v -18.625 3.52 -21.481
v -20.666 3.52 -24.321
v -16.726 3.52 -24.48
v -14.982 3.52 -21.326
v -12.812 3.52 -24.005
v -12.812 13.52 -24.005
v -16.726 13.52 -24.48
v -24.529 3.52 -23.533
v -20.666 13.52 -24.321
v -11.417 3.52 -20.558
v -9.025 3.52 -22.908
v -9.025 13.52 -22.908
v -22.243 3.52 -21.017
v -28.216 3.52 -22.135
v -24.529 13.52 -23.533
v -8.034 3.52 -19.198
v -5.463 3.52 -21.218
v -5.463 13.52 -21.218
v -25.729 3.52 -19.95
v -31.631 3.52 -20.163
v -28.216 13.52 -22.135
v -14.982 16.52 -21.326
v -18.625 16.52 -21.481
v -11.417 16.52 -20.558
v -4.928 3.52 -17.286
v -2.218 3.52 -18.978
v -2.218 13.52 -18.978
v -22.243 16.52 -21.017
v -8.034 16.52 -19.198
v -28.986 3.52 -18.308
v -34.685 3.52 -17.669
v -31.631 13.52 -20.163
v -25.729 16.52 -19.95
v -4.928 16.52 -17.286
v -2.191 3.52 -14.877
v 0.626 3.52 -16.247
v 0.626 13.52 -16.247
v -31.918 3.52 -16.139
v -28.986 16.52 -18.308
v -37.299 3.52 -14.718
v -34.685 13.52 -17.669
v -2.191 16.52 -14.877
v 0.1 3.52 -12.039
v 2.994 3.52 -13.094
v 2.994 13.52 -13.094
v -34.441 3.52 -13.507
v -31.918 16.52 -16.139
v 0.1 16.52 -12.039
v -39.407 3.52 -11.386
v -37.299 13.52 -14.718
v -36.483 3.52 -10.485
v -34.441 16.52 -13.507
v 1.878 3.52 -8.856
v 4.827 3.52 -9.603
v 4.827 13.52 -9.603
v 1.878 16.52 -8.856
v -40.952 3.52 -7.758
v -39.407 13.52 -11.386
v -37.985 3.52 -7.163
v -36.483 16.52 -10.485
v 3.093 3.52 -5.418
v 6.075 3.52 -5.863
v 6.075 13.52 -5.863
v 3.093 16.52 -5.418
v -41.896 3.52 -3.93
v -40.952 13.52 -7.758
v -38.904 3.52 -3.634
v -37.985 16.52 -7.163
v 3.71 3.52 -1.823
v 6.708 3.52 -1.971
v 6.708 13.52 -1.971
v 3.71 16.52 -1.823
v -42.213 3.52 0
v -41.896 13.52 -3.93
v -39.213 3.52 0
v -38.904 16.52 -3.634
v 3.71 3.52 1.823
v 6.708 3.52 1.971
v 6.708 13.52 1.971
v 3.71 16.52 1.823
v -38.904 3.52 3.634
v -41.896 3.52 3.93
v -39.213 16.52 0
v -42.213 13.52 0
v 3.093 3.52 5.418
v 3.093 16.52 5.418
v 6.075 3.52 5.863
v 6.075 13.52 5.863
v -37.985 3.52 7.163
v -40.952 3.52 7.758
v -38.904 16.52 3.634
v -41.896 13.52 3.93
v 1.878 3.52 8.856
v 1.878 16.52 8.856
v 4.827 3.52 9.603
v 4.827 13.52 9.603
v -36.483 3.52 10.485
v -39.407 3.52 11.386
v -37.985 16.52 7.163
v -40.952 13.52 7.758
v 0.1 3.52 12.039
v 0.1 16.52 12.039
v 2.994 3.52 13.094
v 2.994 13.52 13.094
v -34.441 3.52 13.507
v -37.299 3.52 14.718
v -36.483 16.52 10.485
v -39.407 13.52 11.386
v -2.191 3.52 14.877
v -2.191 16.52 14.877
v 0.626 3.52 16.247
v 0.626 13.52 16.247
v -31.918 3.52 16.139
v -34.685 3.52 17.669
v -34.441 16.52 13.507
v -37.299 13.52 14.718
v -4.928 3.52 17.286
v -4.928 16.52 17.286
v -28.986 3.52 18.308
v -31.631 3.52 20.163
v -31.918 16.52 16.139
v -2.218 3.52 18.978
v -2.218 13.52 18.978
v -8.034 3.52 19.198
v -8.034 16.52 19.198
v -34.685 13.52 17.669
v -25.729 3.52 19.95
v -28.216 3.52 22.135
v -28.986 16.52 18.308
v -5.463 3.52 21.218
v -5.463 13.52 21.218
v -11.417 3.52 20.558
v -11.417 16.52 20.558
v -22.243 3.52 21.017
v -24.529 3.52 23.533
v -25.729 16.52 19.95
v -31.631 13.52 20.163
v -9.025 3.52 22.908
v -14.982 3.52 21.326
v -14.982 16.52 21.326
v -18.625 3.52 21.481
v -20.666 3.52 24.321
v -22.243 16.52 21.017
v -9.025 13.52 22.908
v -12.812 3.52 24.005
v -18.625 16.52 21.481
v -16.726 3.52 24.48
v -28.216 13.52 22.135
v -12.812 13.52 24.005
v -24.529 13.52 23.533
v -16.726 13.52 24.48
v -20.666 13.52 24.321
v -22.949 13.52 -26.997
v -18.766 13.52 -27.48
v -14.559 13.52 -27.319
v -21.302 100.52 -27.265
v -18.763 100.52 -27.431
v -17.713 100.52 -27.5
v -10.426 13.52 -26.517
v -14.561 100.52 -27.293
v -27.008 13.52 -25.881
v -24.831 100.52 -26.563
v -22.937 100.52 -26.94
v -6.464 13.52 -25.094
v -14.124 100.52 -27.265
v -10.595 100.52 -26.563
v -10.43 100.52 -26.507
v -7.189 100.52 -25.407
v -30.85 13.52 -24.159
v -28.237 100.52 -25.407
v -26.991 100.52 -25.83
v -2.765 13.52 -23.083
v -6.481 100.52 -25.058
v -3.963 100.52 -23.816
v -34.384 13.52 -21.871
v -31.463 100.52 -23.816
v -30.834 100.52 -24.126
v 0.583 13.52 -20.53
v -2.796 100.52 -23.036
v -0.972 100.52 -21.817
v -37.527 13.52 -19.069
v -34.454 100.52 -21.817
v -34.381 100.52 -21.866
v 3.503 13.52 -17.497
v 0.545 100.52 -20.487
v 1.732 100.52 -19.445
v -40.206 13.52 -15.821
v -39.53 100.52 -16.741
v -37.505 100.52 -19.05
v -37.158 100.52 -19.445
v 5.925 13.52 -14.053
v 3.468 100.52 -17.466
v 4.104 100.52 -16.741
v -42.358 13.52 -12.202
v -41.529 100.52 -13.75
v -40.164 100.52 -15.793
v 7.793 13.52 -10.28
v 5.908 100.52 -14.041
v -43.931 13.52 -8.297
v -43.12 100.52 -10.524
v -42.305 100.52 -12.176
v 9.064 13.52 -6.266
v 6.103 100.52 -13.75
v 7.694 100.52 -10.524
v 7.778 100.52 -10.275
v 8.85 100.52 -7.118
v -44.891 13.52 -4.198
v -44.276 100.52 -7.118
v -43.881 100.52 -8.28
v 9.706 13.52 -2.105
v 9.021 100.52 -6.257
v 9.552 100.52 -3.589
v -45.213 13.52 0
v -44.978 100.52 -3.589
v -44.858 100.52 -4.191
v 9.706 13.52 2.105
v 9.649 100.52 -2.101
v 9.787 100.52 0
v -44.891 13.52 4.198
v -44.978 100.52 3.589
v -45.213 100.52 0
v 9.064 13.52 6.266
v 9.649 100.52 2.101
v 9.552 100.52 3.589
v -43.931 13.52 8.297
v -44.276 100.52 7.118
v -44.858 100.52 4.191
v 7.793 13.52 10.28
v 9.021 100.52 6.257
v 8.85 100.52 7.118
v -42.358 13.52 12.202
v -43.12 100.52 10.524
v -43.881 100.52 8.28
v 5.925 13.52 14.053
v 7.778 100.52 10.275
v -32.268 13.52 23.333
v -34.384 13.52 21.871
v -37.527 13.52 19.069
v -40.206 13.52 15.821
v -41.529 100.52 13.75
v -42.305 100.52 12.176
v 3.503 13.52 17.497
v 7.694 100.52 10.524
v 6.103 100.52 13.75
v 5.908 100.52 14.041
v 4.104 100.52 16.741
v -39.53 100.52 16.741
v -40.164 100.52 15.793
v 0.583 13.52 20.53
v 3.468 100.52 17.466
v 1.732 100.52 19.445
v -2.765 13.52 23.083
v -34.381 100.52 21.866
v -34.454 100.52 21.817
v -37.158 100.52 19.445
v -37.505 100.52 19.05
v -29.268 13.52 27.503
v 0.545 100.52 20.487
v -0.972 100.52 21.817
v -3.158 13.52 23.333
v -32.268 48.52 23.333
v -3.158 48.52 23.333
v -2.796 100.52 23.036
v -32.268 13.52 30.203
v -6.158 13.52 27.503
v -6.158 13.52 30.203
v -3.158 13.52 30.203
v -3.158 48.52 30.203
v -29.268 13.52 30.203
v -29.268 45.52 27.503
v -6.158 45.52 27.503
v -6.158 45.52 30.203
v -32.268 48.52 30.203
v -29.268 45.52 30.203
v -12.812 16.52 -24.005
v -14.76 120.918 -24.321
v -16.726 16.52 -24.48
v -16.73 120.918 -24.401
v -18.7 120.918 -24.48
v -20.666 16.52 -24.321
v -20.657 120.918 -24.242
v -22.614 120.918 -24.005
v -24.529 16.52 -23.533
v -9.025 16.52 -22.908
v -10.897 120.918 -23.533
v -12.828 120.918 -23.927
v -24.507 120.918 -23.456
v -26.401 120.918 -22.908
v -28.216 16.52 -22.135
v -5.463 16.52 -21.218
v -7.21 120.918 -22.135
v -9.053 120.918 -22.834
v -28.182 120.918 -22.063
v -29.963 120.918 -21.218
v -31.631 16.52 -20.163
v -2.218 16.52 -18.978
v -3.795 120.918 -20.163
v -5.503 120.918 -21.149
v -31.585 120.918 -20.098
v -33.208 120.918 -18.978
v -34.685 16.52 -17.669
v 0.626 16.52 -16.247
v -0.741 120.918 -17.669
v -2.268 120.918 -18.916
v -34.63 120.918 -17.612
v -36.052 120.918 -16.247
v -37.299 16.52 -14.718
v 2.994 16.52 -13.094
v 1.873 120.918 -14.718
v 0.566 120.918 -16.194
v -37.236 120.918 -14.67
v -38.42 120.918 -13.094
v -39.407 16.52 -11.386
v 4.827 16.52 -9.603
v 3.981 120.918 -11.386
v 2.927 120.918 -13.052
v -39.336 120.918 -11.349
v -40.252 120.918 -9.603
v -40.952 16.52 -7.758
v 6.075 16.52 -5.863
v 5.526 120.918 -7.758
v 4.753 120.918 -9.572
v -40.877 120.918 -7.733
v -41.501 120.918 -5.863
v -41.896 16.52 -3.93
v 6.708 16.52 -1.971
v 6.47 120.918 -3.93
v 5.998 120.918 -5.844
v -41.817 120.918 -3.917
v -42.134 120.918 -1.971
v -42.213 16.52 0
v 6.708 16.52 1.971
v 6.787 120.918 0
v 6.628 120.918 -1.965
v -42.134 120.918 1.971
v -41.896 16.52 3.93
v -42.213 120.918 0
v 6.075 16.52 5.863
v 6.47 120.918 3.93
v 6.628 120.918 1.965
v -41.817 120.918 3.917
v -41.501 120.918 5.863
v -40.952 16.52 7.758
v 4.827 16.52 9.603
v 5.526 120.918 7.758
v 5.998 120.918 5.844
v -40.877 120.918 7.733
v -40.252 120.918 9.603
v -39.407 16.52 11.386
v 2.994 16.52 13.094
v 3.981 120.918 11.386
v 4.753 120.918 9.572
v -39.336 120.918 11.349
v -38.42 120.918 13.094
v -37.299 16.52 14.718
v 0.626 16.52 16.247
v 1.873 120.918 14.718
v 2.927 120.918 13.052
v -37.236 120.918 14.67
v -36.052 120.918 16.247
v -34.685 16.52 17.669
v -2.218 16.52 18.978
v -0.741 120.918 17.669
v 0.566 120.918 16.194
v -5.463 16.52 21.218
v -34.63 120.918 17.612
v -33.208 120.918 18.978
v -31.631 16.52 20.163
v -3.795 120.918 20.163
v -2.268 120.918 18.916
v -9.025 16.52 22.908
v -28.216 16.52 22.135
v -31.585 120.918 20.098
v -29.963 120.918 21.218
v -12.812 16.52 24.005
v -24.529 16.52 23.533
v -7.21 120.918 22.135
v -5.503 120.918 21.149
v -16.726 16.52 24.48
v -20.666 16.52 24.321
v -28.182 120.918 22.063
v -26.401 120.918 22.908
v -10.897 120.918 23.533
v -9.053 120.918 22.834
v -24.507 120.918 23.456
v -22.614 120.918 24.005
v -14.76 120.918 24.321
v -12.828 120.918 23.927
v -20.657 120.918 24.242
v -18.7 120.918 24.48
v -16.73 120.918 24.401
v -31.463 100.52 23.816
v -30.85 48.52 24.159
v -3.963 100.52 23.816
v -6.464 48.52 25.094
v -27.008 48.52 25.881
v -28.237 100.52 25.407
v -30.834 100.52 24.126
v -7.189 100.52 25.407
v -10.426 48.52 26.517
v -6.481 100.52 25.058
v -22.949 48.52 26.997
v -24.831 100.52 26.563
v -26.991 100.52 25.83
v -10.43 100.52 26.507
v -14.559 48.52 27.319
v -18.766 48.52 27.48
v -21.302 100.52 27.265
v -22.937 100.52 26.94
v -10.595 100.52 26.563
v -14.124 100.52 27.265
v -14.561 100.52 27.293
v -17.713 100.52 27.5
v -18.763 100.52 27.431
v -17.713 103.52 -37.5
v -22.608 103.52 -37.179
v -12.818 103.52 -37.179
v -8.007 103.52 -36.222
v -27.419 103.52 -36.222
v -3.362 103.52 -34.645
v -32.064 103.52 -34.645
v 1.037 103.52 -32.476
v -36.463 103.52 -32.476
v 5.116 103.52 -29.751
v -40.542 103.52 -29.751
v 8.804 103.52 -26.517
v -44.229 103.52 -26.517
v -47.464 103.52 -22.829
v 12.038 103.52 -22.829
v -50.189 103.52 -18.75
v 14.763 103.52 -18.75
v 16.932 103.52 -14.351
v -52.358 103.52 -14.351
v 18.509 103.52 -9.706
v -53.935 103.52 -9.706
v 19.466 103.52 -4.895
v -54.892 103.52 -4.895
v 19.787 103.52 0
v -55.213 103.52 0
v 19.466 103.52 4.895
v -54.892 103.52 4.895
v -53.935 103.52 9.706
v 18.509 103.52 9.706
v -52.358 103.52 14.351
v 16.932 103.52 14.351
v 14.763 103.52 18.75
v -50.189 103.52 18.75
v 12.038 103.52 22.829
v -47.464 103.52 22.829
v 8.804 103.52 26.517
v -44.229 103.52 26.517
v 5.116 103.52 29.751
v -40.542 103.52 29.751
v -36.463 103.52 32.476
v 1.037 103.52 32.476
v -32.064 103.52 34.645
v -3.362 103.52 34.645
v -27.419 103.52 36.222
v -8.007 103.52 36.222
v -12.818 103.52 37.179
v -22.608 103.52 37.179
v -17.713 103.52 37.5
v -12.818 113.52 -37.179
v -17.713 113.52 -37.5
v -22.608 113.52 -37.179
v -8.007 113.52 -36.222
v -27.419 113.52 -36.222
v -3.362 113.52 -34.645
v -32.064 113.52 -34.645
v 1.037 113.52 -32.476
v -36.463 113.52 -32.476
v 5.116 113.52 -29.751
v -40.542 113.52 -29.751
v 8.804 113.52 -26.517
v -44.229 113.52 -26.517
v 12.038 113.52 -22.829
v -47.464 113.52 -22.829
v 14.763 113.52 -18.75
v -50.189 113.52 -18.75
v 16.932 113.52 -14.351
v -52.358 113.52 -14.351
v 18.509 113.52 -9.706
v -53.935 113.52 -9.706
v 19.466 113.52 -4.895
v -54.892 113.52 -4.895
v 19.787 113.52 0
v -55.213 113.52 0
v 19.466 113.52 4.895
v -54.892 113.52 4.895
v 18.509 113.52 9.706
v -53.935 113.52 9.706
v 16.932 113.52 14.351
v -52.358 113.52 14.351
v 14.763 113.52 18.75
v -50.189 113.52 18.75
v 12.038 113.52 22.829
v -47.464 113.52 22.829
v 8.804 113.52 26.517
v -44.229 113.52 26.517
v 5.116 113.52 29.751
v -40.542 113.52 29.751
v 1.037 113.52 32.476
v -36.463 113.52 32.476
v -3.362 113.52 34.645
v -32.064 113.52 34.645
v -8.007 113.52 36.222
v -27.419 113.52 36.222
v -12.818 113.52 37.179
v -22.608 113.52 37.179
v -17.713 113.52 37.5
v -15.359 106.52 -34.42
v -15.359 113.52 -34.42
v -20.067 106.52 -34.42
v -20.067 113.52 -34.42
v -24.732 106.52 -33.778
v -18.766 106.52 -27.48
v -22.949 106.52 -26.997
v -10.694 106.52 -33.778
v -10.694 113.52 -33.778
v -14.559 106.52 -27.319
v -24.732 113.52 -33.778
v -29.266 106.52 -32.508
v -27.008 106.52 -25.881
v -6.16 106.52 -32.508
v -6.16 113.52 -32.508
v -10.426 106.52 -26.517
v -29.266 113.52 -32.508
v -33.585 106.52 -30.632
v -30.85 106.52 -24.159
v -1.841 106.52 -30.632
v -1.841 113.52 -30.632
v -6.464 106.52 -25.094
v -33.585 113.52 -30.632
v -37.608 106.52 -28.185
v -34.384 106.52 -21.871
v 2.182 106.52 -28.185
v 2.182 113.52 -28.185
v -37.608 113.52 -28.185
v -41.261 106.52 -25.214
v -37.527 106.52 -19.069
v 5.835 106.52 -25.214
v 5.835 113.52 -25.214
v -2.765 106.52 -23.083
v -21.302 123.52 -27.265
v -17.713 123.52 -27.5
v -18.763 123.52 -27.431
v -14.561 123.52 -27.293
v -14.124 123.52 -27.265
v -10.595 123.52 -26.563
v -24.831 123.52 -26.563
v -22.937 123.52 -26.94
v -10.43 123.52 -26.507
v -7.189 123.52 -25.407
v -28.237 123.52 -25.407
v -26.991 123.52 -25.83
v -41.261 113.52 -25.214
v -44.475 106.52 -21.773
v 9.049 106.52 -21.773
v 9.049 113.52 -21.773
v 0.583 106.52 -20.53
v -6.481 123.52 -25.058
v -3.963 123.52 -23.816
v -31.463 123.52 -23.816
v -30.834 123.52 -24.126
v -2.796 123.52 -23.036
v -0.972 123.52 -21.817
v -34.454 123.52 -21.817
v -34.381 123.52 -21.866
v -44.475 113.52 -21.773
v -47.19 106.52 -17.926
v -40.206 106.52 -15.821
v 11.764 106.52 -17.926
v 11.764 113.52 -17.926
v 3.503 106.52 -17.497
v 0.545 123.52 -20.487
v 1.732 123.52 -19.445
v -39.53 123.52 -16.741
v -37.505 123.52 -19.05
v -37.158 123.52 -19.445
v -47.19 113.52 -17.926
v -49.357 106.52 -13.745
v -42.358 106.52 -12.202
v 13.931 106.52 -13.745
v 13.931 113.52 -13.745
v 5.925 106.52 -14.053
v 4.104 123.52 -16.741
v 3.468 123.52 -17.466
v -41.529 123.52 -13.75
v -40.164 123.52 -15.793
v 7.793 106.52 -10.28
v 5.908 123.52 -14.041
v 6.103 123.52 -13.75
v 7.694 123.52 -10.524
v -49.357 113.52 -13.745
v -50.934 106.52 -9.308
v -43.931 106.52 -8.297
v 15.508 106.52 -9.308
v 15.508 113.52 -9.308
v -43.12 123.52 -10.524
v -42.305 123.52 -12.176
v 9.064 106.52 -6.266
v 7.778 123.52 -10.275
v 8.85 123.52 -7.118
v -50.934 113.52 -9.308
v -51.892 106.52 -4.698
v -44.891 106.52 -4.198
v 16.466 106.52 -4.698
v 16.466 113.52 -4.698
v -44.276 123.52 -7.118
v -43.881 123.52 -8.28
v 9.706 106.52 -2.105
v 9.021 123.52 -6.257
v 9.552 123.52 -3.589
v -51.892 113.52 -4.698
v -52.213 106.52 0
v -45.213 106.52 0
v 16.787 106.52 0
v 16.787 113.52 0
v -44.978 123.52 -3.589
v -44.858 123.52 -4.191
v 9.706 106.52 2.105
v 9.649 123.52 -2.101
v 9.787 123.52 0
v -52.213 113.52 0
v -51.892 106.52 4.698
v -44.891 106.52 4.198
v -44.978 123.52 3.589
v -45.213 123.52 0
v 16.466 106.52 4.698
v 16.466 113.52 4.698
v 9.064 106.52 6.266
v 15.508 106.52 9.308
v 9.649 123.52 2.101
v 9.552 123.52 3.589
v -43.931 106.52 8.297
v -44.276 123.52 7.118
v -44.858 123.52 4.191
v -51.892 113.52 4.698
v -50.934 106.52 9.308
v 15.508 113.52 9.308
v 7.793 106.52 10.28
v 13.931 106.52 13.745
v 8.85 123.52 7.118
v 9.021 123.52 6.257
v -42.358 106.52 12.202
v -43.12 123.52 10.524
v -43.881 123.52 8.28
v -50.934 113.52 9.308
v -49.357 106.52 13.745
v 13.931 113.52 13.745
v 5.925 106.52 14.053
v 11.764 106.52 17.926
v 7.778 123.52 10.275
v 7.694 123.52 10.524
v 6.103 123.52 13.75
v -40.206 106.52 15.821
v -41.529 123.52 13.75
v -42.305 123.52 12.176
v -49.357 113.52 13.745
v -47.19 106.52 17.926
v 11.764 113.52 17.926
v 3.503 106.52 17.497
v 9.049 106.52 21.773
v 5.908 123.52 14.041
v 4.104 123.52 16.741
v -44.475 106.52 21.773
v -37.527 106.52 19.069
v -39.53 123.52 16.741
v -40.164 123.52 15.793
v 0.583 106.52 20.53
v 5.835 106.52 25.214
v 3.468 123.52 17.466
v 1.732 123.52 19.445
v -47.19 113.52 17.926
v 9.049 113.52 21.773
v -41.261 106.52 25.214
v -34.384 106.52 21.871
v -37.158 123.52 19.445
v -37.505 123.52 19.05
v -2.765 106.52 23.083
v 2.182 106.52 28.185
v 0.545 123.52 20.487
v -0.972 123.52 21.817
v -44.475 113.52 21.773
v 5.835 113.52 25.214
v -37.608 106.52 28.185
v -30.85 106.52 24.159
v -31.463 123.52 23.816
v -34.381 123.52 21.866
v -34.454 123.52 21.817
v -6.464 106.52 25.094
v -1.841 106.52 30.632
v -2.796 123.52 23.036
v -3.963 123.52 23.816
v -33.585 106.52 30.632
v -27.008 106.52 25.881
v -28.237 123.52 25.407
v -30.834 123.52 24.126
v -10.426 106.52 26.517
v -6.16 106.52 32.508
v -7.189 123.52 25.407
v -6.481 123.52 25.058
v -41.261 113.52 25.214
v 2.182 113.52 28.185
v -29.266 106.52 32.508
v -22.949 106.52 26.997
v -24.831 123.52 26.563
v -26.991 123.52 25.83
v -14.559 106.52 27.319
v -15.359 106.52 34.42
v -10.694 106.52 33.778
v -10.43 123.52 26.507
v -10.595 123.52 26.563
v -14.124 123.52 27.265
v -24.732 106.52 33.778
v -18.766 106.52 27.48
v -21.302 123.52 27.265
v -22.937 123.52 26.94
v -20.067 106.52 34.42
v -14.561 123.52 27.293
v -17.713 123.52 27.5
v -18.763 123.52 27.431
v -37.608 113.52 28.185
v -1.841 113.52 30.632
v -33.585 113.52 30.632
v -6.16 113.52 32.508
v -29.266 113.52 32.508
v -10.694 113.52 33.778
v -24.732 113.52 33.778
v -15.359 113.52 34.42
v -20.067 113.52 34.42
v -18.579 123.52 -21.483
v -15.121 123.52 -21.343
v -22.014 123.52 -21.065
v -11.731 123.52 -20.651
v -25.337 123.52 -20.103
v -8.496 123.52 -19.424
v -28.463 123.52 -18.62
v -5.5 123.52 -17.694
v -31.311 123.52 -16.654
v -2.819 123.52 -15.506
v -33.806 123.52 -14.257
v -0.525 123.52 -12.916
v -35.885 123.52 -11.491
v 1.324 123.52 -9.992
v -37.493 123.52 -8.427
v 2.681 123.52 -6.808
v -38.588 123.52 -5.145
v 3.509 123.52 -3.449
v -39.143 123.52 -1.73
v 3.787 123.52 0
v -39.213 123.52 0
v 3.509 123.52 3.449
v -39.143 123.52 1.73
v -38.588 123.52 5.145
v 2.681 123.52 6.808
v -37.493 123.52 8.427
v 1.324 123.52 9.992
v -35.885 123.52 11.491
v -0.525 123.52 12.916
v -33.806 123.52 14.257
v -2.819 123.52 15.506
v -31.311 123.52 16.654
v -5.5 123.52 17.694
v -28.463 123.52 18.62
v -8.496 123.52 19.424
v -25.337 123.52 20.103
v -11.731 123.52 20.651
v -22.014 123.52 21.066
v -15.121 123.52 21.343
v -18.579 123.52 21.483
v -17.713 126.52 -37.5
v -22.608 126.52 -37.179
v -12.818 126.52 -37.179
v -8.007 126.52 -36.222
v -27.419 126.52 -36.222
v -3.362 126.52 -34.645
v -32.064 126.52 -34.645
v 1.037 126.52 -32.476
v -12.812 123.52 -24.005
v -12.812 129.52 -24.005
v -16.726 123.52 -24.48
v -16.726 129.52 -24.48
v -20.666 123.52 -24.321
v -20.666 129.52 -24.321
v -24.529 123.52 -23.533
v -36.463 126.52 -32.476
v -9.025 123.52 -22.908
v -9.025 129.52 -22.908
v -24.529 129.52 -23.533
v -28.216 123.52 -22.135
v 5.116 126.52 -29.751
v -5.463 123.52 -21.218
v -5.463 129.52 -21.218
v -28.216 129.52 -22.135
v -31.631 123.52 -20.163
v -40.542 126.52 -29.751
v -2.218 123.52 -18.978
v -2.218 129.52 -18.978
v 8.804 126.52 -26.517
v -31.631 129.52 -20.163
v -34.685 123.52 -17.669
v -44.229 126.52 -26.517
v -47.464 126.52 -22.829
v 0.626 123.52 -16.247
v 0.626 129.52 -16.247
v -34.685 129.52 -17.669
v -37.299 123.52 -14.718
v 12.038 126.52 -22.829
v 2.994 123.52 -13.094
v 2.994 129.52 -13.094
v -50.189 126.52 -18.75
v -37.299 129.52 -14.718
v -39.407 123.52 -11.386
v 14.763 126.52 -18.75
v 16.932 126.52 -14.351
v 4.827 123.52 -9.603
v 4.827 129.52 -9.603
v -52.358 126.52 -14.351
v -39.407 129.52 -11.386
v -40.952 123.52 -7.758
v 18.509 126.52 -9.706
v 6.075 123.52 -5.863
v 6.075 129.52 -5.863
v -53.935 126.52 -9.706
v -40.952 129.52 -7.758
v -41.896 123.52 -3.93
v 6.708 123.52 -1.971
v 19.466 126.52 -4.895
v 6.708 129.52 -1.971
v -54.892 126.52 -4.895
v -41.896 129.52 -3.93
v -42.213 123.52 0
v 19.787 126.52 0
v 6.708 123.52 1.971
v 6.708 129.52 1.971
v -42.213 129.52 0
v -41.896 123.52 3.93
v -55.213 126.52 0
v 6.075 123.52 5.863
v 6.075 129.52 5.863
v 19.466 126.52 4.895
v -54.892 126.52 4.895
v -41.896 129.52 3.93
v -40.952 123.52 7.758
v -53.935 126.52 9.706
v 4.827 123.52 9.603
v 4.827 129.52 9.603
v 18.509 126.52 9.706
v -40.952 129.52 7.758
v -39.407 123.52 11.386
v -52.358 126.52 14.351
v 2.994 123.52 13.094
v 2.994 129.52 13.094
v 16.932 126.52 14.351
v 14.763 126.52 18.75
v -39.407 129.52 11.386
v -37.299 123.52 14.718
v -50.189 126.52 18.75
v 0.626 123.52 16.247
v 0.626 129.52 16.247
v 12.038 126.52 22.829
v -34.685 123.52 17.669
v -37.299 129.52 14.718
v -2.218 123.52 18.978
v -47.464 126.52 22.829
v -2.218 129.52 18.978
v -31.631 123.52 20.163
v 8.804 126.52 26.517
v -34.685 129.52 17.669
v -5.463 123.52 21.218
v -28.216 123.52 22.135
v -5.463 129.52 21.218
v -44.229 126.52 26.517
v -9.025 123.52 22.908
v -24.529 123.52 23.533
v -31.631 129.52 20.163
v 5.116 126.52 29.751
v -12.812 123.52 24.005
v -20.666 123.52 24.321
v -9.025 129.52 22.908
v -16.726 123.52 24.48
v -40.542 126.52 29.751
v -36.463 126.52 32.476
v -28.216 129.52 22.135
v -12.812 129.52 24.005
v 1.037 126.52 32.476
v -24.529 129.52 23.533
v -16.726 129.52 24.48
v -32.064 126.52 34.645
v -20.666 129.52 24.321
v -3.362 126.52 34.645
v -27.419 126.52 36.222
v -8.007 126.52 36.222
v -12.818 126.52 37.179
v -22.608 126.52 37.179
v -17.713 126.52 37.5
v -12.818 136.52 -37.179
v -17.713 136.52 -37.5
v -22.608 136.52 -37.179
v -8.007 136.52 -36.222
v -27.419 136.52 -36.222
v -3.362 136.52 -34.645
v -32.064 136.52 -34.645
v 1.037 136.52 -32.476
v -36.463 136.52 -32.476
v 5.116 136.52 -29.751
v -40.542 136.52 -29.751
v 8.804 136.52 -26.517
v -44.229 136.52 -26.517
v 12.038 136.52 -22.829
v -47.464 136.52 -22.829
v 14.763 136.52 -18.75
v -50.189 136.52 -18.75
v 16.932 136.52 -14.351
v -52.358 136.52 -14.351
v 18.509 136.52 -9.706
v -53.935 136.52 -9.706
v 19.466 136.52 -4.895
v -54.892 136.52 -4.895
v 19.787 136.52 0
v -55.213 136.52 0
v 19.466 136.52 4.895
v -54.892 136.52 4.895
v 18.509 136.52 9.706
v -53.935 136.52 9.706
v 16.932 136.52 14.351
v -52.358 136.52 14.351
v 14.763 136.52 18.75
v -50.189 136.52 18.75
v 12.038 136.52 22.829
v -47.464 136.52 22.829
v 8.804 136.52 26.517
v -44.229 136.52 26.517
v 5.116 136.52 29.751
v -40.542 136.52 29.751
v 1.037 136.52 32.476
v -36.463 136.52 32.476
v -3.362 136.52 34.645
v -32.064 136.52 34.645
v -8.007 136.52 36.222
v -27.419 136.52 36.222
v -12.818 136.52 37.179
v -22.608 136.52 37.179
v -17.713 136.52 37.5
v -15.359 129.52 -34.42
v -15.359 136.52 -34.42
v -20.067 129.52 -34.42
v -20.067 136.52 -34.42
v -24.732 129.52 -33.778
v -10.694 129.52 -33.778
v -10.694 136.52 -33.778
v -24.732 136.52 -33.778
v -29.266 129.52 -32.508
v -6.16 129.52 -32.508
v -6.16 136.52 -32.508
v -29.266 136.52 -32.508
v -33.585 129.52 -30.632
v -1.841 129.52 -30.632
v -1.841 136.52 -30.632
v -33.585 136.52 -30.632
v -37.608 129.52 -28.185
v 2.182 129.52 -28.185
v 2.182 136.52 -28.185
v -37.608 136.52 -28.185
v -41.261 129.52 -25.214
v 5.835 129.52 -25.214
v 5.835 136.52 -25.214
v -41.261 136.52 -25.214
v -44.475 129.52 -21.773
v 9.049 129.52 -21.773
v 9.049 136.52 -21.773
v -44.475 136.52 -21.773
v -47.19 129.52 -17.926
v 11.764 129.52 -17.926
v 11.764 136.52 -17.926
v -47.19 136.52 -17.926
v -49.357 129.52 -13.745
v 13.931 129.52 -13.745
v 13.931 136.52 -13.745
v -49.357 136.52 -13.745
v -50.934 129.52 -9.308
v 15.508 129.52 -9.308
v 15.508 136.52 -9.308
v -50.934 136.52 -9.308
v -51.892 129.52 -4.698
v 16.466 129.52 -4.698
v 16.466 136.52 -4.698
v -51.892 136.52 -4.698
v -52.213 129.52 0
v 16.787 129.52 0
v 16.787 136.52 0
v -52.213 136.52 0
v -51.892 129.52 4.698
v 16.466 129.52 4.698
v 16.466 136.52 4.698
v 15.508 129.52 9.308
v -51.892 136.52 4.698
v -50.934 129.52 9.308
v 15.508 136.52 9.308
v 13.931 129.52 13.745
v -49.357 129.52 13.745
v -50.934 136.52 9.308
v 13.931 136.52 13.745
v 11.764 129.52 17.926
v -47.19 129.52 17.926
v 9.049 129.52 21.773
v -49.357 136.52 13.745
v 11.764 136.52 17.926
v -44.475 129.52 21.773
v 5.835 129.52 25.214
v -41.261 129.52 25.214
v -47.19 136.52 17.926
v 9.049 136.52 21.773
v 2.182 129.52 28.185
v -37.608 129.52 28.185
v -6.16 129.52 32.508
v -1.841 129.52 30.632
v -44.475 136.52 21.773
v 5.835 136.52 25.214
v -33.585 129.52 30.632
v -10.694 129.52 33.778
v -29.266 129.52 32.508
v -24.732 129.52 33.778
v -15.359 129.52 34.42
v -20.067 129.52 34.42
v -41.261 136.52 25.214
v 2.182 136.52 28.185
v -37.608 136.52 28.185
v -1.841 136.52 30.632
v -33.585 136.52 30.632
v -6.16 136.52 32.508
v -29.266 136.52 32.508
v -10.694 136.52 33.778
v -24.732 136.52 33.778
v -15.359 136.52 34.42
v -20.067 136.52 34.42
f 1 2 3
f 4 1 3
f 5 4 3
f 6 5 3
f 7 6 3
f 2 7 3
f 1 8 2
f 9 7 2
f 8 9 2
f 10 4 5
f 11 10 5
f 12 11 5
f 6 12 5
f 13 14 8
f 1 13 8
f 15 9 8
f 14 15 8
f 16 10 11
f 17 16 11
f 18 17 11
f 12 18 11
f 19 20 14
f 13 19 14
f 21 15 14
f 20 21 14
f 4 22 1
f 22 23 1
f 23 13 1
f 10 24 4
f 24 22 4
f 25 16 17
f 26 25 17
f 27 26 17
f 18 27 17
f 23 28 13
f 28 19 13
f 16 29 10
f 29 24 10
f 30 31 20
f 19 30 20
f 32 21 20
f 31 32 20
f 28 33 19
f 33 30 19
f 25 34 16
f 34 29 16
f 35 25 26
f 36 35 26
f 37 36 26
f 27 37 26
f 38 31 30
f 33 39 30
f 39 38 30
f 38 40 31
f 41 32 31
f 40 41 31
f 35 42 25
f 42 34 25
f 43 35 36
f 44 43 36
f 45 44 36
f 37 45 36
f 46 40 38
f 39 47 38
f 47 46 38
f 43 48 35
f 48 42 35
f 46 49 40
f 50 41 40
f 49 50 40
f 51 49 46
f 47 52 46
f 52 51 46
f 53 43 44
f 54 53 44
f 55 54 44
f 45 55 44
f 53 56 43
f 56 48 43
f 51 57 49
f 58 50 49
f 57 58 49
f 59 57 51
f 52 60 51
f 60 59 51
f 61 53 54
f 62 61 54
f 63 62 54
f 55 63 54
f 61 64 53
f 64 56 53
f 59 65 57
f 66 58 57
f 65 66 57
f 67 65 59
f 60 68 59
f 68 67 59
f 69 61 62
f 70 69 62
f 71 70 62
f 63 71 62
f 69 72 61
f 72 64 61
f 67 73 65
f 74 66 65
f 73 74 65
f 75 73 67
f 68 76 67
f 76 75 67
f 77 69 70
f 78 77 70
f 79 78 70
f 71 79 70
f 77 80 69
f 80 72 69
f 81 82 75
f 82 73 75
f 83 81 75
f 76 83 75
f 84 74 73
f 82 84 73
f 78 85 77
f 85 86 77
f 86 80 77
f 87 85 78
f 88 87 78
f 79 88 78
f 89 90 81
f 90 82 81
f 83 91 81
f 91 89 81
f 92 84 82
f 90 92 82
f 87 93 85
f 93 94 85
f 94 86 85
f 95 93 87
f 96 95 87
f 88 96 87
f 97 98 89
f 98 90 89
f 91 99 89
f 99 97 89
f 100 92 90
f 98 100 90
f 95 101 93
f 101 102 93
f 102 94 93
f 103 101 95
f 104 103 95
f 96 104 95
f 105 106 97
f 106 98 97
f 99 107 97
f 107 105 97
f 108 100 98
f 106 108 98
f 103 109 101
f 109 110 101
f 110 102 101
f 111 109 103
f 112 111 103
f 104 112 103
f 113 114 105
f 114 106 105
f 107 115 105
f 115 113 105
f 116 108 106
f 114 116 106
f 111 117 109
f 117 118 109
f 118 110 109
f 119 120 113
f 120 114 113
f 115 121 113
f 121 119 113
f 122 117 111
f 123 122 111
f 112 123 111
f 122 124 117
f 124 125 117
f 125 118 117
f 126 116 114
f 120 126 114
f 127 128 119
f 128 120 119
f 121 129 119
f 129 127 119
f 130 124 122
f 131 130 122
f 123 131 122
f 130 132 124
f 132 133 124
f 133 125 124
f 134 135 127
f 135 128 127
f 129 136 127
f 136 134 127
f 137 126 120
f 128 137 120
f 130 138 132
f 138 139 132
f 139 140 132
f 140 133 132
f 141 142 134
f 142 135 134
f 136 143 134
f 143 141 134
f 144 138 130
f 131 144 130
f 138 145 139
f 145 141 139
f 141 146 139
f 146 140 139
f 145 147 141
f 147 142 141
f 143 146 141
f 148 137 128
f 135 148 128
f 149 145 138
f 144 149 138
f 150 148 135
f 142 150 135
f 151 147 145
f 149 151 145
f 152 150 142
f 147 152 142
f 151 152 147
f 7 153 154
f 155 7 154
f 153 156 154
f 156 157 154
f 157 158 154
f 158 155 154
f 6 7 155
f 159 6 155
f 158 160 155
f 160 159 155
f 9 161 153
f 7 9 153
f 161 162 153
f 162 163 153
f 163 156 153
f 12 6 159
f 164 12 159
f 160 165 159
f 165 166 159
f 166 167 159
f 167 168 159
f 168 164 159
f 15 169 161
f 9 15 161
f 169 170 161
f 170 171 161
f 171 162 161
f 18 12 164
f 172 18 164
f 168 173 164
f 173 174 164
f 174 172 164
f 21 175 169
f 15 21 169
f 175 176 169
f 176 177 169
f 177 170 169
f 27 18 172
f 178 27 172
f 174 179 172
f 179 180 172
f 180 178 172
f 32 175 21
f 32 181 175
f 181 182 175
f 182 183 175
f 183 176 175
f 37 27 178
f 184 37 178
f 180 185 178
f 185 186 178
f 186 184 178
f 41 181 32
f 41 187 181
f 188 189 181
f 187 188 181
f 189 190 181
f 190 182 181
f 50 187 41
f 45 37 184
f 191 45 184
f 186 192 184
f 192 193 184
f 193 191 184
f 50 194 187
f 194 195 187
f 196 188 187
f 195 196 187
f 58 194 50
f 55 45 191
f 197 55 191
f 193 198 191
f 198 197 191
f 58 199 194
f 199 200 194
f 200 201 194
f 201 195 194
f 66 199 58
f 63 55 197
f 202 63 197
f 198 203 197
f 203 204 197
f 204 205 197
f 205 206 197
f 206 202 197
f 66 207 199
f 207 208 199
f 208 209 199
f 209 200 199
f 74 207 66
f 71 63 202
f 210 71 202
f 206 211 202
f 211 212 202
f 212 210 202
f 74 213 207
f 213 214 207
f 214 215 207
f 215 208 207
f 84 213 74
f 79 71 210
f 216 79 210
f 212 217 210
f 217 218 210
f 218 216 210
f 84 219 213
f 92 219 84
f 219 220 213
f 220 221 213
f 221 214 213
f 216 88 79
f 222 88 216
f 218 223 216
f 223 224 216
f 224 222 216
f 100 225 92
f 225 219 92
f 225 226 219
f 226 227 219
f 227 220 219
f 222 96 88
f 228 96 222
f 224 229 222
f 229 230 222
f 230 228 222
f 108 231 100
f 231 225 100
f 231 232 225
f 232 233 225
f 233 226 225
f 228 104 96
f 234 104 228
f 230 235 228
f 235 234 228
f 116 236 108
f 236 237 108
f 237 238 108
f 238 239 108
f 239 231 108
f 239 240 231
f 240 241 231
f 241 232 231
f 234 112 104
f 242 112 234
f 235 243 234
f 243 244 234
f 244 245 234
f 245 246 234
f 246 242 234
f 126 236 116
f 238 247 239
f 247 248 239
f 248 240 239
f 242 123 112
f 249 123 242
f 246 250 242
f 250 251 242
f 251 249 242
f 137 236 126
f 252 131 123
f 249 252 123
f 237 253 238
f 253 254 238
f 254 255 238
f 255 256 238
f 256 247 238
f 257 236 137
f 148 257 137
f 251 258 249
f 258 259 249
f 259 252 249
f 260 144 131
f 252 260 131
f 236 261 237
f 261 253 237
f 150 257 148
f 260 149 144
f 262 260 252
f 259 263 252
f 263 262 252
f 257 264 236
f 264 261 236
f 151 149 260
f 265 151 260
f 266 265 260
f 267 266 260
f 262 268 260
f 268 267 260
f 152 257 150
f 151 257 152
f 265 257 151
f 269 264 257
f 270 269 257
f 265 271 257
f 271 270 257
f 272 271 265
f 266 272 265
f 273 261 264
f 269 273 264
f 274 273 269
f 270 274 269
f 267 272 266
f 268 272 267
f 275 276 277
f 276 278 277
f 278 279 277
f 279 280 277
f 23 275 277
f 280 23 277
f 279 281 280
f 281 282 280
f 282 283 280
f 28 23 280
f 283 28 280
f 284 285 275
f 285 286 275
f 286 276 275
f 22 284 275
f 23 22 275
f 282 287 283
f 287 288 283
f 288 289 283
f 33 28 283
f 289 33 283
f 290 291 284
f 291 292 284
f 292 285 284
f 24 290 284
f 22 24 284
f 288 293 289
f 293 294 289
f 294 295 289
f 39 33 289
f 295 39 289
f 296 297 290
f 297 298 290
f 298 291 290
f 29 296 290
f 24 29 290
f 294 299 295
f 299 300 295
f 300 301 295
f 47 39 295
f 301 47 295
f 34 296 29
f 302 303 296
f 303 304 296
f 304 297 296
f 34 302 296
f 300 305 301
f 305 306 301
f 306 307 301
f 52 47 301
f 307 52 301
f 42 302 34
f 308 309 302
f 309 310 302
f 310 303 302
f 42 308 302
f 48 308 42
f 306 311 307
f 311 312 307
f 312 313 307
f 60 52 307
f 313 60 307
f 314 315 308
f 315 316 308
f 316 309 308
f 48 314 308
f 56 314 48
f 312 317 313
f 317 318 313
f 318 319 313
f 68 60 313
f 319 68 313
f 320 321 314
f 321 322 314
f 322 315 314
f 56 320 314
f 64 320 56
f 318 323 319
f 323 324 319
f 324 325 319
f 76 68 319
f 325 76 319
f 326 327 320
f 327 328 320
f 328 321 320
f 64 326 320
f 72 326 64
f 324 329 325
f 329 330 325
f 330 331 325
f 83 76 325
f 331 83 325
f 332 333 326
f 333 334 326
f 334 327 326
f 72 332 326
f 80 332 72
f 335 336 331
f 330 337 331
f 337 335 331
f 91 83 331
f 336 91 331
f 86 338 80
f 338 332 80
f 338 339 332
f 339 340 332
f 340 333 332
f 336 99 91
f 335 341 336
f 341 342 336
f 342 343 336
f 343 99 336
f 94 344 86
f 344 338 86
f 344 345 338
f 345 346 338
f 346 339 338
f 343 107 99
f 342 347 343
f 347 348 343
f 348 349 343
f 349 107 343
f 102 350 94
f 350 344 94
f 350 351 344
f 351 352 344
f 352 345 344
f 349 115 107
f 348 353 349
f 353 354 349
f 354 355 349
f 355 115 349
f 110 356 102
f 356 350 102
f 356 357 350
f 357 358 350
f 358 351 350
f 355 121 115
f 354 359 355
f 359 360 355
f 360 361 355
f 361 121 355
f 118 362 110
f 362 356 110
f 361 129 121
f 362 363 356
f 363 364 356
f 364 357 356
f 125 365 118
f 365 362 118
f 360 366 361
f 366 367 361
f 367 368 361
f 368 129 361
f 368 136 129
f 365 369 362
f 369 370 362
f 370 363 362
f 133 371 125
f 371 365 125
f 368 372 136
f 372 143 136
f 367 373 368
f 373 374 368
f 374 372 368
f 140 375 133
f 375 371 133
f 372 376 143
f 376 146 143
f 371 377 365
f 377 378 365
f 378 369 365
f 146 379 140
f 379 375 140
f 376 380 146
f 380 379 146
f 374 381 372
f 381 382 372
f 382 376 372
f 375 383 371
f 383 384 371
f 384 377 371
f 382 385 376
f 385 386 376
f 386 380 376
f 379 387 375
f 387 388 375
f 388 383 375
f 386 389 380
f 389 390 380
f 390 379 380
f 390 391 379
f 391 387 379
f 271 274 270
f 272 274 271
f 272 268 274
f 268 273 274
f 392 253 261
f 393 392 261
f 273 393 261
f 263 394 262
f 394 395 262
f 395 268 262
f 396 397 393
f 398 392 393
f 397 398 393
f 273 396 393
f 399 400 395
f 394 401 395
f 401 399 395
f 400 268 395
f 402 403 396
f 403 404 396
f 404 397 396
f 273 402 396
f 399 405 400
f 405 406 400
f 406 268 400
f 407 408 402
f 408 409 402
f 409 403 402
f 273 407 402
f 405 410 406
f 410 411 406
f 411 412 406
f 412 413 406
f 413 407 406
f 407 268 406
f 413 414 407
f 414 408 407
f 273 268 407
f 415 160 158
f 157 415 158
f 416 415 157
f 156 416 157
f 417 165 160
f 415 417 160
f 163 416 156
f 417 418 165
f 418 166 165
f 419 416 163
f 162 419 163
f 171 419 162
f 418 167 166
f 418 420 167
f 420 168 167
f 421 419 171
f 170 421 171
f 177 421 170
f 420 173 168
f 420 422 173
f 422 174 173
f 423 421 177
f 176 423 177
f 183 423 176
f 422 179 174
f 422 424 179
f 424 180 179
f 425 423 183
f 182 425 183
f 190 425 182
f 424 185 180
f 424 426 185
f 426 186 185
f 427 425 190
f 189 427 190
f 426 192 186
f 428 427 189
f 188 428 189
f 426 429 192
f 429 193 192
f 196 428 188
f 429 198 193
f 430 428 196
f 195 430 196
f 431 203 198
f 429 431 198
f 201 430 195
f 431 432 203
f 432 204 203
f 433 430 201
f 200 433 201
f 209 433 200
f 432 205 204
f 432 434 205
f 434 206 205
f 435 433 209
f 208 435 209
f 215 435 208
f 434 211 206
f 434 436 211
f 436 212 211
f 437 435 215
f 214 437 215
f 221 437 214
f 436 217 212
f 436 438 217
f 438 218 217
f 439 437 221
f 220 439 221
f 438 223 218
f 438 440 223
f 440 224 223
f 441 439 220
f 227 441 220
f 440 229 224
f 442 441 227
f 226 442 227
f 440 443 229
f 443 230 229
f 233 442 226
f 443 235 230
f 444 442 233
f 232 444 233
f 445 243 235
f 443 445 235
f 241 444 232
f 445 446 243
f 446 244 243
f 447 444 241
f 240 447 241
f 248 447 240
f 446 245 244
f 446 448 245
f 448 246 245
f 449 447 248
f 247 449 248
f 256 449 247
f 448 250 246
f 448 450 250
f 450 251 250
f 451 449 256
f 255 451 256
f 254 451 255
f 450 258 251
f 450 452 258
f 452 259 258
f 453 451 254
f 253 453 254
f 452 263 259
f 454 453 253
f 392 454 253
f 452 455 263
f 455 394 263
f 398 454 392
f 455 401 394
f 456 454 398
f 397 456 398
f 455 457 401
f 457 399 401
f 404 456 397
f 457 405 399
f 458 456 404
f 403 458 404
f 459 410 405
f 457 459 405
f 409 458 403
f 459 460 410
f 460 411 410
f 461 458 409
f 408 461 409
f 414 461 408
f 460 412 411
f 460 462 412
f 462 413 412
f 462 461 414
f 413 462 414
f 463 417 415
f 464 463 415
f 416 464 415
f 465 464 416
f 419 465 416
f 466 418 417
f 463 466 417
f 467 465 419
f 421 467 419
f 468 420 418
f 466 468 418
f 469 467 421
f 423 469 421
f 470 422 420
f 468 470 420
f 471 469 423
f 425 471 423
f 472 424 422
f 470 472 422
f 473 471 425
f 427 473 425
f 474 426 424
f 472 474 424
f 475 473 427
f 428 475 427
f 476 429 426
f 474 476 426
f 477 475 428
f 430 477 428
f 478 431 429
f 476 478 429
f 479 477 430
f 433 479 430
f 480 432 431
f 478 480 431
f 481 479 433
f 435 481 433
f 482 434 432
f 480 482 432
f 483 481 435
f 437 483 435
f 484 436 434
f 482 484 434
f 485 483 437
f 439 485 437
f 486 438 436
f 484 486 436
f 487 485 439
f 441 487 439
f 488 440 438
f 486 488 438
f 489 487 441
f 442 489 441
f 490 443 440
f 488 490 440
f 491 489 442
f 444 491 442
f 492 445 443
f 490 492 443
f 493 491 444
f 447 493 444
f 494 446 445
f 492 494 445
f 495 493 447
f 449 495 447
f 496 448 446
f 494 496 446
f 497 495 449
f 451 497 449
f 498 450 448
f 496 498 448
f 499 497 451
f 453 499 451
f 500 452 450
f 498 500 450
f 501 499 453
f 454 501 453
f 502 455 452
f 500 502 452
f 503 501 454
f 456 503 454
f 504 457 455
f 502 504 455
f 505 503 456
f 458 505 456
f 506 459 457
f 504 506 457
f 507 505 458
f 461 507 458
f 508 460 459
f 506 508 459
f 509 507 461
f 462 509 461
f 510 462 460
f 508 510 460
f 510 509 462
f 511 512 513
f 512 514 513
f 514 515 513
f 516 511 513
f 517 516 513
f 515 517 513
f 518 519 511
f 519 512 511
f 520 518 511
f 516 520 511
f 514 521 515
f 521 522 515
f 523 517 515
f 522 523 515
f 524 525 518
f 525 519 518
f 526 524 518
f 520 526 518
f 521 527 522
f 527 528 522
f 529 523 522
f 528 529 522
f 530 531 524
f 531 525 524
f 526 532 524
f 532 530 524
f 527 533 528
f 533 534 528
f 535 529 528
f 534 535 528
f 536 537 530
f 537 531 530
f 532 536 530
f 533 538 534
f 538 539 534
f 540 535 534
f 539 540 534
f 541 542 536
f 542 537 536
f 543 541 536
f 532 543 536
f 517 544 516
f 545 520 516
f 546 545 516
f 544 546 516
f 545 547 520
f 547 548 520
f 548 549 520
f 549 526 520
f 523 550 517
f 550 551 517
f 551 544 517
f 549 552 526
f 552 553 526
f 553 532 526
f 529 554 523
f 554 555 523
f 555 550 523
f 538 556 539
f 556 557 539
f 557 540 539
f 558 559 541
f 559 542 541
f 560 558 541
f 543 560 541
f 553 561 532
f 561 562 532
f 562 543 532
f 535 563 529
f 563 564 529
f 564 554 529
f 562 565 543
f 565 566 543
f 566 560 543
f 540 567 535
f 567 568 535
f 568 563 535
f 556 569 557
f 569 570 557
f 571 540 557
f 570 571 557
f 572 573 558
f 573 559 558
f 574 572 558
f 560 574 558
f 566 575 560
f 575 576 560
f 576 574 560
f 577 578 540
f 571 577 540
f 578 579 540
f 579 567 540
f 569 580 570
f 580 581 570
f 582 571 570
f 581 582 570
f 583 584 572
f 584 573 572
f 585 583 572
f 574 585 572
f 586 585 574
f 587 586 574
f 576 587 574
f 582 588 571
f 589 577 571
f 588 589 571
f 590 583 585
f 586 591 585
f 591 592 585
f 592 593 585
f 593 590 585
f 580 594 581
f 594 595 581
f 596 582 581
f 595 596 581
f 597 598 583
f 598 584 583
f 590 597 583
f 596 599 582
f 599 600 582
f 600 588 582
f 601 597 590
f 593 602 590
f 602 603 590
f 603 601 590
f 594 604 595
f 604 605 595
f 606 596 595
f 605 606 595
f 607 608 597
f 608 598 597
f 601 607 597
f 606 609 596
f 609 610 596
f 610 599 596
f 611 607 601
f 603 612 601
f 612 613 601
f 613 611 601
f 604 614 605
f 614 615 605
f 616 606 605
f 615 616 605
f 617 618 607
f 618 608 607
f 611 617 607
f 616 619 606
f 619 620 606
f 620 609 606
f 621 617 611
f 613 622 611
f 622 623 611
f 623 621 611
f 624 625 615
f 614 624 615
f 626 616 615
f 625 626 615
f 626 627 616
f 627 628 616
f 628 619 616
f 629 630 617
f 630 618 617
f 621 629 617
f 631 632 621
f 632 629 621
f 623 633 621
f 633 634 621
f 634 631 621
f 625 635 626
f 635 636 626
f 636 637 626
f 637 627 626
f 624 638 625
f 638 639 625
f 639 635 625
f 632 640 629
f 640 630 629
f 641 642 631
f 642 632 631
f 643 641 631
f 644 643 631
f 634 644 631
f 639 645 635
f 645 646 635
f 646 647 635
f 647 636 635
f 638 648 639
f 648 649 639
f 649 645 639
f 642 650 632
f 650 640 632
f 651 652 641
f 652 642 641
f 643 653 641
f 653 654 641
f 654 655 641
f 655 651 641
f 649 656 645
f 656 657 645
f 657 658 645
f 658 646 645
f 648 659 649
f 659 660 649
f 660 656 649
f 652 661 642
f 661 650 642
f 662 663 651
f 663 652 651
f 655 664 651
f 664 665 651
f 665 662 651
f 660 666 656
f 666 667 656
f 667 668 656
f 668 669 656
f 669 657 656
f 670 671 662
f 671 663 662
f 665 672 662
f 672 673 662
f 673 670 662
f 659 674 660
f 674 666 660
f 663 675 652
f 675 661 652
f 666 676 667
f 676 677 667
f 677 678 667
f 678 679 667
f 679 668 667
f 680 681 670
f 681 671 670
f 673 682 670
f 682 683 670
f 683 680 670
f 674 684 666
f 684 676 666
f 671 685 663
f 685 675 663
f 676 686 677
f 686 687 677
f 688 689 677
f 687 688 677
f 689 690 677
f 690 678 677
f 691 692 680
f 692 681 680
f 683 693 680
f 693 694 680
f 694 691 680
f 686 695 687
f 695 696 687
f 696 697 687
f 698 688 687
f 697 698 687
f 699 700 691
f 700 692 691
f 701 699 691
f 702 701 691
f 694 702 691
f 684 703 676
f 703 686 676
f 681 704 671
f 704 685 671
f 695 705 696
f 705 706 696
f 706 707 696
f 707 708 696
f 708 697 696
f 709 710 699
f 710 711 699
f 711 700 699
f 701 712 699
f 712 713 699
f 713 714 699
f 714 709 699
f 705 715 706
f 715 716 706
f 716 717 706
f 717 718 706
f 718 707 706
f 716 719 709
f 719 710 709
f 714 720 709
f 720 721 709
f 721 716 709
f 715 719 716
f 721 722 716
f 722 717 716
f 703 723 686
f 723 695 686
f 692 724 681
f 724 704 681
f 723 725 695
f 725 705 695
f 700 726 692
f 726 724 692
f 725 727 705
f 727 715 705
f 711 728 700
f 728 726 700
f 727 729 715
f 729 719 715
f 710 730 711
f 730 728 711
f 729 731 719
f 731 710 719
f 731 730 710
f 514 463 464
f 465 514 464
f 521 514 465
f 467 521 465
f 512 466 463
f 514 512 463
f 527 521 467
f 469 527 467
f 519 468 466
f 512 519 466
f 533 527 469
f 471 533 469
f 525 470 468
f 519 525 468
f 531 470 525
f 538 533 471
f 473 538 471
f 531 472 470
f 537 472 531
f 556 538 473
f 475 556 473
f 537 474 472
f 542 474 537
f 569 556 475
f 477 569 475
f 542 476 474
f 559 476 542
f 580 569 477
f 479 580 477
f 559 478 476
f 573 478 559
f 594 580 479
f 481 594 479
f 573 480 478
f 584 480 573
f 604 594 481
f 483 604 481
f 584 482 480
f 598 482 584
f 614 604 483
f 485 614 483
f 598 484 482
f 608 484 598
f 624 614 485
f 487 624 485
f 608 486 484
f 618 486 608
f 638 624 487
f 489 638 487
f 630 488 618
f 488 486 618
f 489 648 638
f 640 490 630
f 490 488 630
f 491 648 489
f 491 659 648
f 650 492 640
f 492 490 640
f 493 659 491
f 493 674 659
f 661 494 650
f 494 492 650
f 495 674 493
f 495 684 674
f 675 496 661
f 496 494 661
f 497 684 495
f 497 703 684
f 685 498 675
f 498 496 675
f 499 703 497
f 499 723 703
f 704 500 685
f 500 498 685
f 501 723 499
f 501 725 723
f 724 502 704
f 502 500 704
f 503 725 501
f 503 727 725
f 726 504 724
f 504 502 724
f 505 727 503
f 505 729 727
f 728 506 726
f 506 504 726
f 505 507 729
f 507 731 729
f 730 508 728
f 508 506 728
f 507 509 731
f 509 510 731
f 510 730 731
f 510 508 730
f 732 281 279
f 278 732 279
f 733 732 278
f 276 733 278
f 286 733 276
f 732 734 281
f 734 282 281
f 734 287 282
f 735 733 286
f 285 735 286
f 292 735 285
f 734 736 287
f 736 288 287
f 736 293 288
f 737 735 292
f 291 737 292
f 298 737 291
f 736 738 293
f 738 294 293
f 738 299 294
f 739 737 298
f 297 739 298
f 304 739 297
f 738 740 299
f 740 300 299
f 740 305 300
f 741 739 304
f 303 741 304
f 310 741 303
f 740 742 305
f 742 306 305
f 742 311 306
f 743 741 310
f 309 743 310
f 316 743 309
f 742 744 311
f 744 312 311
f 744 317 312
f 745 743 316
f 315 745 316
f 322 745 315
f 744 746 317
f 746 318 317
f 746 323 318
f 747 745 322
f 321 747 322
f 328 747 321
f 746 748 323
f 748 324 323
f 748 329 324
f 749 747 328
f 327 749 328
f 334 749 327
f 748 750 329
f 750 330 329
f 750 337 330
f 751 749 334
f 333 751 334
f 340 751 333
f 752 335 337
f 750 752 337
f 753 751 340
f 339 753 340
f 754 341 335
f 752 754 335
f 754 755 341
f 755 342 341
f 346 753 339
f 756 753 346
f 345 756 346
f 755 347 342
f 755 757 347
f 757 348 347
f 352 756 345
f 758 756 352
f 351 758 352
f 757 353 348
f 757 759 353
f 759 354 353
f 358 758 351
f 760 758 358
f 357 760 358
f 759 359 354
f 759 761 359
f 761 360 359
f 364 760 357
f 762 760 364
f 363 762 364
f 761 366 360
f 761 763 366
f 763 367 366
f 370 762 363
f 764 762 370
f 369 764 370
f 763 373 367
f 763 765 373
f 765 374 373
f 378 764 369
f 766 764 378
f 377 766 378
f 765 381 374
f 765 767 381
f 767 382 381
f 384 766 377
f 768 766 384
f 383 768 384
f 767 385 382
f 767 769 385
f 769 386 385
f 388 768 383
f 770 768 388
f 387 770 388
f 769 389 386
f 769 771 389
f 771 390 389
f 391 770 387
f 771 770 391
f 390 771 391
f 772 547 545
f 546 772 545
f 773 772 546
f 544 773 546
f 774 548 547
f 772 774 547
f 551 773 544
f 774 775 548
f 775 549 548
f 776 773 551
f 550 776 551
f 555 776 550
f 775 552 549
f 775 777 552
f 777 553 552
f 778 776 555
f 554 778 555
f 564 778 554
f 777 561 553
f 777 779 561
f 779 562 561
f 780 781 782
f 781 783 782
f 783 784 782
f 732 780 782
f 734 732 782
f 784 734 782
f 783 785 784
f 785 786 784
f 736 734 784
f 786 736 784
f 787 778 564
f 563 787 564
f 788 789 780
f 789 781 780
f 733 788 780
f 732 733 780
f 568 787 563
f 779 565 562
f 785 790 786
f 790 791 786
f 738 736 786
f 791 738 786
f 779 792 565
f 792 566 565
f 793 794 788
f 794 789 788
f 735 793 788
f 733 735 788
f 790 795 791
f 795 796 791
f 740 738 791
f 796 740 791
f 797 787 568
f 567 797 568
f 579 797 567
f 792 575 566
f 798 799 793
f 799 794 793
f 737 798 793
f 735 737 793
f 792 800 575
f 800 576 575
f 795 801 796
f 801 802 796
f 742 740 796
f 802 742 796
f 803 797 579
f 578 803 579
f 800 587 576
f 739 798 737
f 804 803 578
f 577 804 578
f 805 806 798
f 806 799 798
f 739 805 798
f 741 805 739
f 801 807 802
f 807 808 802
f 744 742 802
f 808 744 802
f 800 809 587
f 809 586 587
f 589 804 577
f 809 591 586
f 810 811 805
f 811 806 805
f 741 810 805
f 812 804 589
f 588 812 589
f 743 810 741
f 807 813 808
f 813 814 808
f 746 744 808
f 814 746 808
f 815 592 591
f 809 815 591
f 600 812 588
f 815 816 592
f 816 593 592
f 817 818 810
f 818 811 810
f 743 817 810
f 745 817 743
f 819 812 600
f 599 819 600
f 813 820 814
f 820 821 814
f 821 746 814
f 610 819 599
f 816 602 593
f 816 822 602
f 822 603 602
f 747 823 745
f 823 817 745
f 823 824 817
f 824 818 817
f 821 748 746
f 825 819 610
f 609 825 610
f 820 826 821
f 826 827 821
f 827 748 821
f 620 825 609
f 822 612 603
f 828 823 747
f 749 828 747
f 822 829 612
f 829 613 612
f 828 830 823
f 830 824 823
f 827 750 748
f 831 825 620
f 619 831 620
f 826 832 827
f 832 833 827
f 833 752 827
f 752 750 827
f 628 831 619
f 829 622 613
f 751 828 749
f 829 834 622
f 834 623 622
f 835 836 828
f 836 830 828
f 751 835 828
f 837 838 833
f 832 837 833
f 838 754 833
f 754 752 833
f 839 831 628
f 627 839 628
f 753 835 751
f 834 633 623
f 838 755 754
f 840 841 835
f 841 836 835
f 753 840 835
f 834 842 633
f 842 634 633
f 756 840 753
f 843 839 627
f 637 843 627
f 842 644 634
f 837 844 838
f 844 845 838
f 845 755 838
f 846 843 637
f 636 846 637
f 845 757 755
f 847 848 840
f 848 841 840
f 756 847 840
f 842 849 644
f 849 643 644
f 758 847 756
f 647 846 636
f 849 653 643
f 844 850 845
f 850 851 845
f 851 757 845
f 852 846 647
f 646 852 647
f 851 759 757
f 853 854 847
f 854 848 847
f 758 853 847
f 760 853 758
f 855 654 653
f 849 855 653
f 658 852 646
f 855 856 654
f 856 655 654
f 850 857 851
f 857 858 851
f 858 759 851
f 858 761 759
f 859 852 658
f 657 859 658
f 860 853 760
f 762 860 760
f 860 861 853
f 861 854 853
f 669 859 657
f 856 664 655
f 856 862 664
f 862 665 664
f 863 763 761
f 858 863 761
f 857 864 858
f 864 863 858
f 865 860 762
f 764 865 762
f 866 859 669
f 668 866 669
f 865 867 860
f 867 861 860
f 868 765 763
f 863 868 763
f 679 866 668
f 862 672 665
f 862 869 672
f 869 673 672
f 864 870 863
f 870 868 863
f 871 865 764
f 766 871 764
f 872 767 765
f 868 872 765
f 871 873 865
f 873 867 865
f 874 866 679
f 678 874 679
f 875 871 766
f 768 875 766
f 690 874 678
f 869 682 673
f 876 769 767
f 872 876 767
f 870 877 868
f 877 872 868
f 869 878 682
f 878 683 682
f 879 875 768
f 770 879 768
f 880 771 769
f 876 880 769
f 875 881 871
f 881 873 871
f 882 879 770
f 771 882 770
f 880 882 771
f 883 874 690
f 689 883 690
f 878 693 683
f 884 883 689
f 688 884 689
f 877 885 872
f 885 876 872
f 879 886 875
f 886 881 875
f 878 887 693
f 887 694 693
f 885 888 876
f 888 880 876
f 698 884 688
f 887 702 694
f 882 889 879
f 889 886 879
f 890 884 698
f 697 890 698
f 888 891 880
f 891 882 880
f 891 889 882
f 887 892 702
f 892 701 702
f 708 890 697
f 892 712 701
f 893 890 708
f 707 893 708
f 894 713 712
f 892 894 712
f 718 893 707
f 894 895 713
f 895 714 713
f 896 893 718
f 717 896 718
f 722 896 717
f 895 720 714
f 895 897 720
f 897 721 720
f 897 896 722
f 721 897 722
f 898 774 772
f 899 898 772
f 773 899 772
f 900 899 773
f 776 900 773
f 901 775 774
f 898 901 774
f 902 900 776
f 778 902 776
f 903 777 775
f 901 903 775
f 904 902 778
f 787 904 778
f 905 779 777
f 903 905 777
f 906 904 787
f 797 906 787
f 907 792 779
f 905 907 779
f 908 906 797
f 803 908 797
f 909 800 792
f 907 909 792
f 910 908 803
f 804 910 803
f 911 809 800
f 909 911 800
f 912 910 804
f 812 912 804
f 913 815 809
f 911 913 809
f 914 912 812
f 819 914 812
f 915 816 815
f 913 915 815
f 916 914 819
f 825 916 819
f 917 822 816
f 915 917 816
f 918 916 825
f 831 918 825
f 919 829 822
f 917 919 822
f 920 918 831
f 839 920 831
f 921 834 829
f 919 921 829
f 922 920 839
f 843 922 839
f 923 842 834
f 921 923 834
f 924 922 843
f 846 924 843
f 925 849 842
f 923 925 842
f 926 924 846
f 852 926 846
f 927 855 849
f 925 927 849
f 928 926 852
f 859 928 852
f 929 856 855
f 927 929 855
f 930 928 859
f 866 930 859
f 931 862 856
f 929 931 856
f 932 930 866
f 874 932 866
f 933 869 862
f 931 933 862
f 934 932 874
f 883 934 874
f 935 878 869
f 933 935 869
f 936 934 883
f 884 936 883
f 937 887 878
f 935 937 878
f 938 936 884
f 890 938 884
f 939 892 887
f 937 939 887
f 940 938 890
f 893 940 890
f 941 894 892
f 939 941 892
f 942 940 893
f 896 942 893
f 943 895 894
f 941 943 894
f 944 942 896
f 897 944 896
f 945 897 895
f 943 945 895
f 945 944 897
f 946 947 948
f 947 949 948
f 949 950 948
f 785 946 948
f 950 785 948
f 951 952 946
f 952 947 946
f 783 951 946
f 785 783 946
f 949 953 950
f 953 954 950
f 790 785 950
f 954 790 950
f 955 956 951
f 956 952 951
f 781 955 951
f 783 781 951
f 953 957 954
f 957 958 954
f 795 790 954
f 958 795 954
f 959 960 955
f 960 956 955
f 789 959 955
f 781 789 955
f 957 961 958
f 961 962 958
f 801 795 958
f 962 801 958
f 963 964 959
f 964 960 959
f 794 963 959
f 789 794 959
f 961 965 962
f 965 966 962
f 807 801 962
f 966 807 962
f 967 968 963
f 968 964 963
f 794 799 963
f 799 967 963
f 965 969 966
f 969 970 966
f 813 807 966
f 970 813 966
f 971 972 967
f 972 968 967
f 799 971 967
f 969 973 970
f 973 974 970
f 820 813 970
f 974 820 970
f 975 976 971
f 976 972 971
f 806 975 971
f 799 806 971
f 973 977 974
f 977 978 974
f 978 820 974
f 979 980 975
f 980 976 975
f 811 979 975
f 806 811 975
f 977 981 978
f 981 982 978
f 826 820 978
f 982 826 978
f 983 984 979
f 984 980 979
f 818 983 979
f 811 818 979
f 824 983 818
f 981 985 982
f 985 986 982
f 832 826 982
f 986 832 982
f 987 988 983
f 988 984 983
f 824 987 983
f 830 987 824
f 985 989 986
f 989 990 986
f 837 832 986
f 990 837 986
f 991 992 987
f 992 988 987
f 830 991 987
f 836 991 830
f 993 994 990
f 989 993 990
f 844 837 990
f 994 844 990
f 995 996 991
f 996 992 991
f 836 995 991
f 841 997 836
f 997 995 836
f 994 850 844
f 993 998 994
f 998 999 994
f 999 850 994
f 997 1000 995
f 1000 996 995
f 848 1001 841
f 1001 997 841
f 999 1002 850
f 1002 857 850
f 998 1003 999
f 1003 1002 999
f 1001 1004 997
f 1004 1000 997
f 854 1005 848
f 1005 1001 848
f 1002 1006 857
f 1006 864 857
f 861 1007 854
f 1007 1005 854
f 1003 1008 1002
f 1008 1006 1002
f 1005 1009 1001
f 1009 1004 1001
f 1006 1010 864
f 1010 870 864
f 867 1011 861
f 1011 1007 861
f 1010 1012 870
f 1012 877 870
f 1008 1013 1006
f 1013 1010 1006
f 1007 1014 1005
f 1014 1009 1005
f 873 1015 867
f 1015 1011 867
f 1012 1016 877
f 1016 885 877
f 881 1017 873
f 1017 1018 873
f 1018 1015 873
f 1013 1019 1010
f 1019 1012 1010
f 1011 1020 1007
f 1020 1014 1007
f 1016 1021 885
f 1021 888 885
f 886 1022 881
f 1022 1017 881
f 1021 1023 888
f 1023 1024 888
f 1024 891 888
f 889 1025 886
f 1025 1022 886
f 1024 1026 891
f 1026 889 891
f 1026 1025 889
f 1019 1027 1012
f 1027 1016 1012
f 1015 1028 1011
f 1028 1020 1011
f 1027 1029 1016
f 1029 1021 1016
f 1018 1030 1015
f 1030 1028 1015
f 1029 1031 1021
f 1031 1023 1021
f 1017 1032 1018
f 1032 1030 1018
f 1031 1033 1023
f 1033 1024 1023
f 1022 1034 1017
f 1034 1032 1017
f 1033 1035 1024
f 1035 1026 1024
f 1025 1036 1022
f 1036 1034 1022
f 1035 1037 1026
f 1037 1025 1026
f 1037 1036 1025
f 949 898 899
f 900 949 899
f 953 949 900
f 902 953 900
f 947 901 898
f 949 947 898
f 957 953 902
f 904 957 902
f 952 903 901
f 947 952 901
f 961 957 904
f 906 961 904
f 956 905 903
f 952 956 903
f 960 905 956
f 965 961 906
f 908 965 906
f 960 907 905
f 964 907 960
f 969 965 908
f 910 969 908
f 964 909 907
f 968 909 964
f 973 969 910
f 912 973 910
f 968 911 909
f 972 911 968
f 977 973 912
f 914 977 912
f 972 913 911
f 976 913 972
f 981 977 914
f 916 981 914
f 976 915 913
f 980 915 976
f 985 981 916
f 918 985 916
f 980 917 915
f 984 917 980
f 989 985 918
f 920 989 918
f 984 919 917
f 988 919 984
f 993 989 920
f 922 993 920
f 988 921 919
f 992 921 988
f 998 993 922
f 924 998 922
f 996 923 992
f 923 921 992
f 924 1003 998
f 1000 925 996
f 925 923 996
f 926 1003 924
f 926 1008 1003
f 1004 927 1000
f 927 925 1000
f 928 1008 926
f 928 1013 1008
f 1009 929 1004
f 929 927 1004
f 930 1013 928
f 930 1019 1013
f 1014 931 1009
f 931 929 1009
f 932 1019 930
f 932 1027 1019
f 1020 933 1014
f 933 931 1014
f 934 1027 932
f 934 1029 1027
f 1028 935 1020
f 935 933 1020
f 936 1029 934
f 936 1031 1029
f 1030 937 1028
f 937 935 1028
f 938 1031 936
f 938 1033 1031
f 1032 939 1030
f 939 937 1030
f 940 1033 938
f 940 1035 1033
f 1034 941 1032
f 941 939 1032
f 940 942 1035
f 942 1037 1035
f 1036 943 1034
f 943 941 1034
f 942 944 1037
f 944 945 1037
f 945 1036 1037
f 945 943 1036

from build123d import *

# Parameters (mm, degrees)
SALIENTE_EXTRUIR1_DEPTH = 35
CROQUIS3_W              = 23.109686168
CROQUIS3_H              = 32
CORTAR_EXTRUIR1_DEPTH   = 2.7


with BuildPart() as part:
    # Croquis1 → Revolución1 (revolve)
    with BuildSketch(Plane.XY):
        Polygon((-39.212995514, 3.519897437), (-39.212995514, 16.519897437), (-42.212995514, 16.519897437), (-42.212995514, 120.917625562), (-39.212995514, 123.519897437), (-42.212995514, 123.519897437), (-42.212995514, 129.519897437), (-52.212995514, 129.519897437), (-52.212995514, 136.519897437), (-55.212995514, 136.519897437), (-55.212995514, 126.519897437), (-45.212995514, 123.519897437), (-45.212995514, 106.519897437), (-52.212995514, 106.519897437), (-52.212995514, 113.519897437), (-55.212995514, 113.519897437), (-55.212995514, 103.519897437), (-45.212995514, 100.519897437), (-45.212995514, 13.519897437), (-42.212995514, 13.519897437), (-42.212995514, 3.519897437), align=None)
    revolve(axis=Axis((-17.712995514, 104.262295082, 0), (0, -1, 0)))

    # Croquis2 → Saliente-Extruir1 (add)
    with BuildSketch(Plane.XZ.offset(-13.519897437)):
        with BuildLine():
            Line((-32.267838598, 23.332521141), (-32.267838598, 30.202521141))
            Line((-32.267838598, 30.202521141), (-3.15815243, 30.202521141))
            Line((-3.15815243, 30.202521141), (-3.15815243, 23.332521141))
            ThreePointArc((-3.15815243, 23.332521141), (-17.712995514, 27.5), (-32.267838598, 23.332521141))
        make_face()
    extrude(amount=-SALIENTE_EXTRUIR1_DEPTH)

    # Croquis3 → Cortar-Extruir1 (cut)
    with BuildSketch(Plane.XY.offset(30.202521141)):
        with Locations((-17.712995514, 29.519897437)):
            Rectangle(CROQUIS3_W, CROQUIS3_H)
    extrude(amount=-CORTAR_EXTRUIR1_DEPTH, mode=Mode.SUBTRACT)


solid = part.part
